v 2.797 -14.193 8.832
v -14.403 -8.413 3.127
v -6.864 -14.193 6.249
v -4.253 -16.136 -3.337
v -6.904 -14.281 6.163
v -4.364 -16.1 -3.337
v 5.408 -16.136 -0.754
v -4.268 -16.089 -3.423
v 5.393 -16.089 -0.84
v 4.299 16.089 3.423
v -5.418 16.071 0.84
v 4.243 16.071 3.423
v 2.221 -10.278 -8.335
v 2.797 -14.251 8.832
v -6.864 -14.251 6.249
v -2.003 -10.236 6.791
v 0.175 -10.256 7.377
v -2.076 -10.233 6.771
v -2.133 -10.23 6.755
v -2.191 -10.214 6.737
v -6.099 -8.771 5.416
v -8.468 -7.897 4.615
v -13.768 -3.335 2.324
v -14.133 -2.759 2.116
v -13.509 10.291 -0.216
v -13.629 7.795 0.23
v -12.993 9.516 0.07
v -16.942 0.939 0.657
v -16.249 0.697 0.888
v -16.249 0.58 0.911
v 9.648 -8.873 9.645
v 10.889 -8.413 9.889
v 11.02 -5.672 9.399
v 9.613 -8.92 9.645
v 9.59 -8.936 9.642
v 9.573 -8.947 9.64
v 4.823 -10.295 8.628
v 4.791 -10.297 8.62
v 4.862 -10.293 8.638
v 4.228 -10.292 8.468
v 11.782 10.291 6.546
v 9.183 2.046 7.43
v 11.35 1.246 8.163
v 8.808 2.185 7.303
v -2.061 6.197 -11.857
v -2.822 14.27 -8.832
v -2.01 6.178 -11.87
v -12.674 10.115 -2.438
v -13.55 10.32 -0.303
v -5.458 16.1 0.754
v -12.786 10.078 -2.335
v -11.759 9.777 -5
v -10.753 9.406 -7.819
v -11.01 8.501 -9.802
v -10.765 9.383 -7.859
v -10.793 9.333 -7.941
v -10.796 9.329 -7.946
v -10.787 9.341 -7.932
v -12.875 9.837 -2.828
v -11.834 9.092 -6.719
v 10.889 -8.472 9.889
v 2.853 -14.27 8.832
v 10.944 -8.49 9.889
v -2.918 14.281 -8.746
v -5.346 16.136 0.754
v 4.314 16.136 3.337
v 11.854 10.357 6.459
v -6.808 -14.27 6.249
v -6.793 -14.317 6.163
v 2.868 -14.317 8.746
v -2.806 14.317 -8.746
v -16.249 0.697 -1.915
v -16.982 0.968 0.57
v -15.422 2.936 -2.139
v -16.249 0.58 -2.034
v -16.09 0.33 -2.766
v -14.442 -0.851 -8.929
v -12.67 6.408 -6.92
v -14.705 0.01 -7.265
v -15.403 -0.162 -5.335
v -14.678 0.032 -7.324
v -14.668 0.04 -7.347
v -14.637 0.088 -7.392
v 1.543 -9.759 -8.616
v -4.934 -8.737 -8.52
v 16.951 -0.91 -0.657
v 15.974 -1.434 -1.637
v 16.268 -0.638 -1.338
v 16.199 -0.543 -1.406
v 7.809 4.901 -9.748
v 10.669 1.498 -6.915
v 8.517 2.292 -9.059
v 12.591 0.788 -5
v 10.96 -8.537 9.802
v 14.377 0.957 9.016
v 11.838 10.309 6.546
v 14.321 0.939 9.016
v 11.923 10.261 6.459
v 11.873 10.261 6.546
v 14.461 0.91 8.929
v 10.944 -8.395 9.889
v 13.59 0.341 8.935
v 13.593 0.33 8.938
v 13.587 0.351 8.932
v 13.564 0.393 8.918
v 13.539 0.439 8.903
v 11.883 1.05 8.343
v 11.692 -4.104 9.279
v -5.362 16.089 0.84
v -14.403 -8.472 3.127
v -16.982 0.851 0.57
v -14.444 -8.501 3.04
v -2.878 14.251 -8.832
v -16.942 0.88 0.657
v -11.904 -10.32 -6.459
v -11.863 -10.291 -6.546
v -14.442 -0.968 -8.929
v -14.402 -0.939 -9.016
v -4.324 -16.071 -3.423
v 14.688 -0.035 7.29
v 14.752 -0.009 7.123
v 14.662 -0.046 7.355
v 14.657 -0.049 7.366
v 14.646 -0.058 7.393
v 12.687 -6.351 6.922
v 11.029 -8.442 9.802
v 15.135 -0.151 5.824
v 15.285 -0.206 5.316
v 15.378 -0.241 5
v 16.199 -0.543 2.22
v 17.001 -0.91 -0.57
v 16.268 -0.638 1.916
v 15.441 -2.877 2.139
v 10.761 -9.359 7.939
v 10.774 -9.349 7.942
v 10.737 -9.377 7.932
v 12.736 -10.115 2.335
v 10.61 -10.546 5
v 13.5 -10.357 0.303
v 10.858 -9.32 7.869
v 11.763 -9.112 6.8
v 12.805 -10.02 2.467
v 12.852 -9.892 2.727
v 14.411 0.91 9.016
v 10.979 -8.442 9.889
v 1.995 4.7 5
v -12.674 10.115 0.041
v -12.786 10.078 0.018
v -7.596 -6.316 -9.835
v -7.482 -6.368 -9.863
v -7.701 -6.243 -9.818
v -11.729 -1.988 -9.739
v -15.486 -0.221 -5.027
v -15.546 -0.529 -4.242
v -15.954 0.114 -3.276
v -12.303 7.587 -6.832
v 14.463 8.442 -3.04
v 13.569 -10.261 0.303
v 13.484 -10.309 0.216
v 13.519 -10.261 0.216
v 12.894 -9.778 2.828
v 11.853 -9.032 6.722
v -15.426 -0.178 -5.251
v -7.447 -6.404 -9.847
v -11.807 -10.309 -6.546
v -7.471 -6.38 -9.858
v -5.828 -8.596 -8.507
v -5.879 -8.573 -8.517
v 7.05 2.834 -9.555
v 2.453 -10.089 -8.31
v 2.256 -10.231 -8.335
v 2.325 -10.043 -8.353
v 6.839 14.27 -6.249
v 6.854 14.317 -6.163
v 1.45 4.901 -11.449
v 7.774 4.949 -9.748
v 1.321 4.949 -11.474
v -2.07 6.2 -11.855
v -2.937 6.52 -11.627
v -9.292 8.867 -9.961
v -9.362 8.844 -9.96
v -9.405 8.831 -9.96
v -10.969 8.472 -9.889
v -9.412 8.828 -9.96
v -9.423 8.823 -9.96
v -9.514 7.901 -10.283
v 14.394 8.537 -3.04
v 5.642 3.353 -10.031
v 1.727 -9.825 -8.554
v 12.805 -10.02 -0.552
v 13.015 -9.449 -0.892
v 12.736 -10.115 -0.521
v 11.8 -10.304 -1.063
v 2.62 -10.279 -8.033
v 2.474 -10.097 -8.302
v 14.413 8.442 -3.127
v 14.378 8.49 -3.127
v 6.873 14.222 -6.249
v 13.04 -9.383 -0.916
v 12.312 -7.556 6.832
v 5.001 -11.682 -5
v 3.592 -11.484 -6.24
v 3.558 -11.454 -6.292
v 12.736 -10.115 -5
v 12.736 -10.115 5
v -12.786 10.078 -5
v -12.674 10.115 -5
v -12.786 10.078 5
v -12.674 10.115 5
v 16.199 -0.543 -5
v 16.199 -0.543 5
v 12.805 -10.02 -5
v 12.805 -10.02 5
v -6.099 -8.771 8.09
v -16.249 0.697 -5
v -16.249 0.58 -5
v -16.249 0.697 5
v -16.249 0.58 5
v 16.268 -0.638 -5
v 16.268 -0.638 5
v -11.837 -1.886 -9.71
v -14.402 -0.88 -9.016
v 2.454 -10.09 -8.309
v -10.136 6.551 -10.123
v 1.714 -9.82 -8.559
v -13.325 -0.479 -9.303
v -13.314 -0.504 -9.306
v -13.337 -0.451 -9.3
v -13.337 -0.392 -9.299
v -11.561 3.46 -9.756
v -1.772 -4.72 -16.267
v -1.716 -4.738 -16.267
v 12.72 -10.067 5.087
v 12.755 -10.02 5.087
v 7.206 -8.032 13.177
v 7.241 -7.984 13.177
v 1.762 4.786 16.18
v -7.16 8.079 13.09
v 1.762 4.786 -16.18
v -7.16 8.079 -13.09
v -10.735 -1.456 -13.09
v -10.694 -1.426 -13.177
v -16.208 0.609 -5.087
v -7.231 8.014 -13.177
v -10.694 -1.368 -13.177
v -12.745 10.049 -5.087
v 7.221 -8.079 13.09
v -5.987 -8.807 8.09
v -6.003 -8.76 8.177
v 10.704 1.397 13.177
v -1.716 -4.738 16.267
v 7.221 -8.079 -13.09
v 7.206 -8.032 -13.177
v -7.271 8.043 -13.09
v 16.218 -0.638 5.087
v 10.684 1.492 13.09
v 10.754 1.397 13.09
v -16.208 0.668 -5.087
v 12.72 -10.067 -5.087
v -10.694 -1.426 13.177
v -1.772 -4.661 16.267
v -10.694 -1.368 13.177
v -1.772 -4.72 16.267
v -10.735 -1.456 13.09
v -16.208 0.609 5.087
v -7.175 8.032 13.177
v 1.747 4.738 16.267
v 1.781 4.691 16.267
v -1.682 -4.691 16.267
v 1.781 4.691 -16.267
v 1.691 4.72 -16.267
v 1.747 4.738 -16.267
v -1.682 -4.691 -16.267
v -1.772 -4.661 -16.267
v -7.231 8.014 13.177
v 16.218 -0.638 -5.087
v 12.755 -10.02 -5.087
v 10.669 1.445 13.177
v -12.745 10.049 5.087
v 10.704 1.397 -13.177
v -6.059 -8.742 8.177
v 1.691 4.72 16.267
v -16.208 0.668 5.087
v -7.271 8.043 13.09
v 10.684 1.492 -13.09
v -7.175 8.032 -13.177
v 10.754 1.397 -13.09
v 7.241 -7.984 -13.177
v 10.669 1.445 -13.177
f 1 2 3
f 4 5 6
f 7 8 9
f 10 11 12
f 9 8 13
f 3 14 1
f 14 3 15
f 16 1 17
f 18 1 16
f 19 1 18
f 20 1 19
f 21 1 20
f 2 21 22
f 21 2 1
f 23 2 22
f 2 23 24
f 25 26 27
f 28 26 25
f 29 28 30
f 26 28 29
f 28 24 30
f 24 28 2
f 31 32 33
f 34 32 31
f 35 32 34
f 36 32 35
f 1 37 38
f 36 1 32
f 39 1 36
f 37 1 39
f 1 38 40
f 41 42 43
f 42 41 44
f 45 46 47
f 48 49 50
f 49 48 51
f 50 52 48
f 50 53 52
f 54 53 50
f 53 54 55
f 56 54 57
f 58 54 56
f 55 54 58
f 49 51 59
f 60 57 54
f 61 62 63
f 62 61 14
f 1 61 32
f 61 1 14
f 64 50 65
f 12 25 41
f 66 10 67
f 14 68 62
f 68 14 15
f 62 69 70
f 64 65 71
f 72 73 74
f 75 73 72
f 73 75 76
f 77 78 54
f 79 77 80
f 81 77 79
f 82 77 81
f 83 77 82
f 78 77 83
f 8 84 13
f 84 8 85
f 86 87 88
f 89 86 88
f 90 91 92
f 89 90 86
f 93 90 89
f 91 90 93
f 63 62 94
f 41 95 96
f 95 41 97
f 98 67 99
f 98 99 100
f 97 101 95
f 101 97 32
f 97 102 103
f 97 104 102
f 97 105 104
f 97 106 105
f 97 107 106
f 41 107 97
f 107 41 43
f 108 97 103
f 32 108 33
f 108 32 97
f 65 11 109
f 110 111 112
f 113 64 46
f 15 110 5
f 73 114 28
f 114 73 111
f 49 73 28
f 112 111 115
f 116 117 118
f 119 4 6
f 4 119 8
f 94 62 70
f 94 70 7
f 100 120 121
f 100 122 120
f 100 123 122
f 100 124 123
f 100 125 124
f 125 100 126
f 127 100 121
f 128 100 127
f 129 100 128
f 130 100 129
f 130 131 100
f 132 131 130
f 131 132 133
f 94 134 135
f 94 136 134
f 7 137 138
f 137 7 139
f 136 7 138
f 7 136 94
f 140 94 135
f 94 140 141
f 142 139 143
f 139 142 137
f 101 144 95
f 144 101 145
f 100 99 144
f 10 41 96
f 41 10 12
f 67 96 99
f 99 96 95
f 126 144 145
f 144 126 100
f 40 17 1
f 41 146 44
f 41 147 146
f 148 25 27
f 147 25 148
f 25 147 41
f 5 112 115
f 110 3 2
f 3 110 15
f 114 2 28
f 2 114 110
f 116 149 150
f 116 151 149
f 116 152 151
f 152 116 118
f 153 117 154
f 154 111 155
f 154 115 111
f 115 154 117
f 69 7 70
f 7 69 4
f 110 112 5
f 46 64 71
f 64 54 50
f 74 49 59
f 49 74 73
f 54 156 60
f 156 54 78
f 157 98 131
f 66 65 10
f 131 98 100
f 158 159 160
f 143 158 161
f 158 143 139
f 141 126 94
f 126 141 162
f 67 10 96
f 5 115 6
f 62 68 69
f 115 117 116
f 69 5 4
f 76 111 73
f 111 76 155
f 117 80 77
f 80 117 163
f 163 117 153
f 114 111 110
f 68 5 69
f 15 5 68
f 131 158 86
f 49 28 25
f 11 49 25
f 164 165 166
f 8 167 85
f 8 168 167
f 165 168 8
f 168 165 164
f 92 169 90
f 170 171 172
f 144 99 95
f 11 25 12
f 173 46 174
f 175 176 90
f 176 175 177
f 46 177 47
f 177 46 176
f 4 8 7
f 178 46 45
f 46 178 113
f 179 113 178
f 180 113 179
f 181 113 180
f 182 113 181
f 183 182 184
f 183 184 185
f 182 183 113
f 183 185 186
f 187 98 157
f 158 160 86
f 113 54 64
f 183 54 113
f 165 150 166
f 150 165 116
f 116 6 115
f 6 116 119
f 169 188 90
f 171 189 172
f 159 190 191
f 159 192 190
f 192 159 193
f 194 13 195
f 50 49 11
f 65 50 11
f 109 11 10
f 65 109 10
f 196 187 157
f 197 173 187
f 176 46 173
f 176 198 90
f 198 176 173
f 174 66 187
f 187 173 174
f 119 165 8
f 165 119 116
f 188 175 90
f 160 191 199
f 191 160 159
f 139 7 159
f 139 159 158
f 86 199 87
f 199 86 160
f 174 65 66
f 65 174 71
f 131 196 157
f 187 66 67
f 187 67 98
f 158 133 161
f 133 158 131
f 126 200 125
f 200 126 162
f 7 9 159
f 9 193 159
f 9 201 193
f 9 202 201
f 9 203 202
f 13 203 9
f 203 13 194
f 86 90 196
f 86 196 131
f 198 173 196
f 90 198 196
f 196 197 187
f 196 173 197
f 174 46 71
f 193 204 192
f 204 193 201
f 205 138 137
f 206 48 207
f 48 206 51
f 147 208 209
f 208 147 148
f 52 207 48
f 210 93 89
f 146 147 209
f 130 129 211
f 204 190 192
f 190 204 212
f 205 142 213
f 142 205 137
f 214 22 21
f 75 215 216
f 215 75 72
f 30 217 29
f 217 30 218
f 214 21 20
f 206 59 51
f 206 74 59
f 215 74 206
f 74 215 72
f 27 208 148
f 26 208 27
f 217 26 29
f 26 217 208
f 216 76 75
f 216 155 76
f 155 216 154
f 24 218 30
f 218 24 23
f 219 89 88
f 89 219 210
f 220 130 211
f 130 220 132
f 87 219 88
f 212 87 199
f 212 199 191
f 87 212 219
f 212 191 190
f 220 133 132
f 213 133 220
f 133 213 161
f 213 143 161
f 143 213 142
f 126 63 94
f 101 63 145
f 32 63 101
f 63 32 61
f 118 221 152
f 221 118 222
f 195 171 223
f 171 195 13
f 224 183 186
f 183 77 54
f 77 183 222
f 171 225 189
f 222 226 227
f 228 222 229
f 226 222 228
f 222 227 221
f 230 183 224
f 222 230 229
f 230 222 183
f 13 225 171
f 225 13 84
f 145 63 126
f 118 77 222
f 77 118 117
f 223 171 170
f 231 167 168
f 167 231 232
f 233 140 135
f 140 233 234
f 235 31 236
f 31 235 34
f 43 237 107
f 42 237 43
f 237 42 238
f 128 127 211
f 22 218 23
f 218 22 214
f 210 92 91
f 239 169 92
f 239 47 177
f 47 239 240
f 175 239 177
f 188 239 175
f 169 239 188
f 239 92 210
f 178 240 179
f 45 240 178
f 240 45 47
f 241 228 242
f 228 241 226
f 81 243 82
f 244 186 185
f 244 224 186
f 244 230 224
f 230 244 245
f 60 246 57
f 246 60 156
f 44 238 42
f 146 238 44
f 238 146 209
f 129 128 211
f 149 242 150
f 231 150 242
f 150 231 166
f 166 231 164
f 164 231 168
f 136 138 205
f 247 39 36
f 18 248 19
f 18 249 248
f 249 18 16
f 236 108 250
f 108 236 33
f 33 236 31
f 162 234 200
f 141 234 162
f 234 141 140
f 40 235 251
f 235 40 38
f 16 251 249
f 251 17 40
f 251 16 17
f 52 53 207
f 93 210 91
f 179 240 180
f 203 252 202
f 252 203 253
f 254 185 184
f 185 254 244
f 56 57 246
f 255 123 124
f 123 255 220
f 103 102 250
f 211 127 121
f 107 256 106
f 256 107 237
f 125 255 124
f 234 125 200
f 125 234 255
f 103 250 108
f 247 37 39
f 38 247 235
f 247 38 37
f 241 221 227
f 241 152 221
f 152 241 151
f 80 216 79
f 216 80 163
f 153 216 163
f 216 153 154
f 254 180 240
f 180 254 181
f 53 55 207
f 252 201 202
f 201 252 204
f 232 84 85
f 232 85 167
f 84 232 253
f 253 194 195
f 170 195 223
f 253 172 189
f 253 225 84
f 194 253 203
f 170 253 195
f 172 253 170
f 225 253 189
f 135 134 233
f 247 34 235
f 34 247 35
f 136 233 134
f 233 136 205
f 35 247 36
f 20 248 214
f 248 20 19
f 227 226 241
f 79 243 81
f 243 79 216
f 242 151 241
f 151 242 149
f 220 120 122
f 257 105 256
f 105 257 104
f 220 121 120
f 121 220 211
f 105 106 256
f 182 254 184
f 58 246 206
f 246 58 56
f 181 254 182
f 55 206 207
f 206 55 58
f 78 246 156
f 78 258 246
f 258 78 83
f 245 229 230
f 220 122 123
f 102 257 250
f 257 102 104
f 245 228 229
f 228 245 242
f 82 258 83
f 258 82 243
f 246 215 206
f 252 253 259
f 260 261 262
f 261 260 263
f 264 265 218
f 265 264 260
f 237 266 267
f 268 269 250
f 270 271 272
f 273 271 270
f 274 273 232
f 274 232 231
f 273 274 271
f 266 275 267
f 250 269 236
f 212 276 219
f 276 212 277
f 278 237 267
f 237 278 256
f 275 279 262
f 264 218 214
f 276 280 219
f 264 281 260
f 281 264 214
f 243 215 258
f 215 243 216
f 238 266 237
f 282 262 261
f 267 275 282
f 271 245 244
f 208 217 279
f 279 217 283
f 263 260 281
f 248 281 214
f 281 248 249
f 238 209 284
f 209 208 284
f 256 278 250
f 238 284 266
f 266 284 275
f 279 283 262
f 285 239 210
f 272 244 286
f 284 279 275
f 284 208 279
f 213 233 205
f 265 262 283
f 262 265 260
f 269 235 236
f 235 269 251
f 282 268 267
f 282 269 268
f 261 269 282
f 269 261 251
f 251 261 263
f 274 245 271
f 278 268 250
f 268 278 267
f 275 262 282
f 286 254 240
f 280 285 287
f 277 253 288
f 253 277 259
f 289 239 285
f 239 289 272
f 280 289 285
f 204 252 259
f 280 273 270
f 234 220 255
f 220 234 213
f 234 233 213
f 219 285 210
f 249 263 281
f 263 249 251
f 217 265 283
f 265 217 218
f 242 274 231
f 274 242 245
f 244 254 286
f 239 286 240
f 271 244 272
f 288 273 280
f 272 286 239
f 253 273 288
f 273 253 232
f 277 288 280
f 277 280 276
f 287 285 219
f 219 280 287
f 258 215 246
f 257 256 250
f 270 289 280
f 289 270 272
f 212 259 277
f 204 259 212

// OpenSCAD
// Auto-generated OpenSCAD file

    inner_points = 10*[[-1.6167766456007826, 0.06384352681284394, 0.5000000000001501], [-1.2704727596155507, 1.001965916776716, 0.5000000000009248], [1.2704671898464706, -1.0019702419428729, -0.5000000000009248], [1.6167710758317024, -0.06384785197900072, -0.5000000000001501], [-1.616776645600842, 0.06384352681369176, -0.4999999999998499], [-1.27047275961561, 1.0019659167775639, -0.4999999999990751], [-1.0653621399346023, -0.13970879018153537, 1.309016994374892], [-0.7190582539493701, 0.7984135997823368, 1.3090169943756669], [0.7190526841802901, -0.7984179249484936, -1.3090169943756669], [1.065356570165522, 0.1397044650153786, -1.309016994374892], [1.2704671898465298, -1.0019702419437206, 0.4999999999990751], [1.616771075831762, -0.06384785197984855, 0.4999999999998499], [-1.0653621399347575, -0.13970879017931587, -1.3090169943750025], [-0.7190582539495255, 0.7984135997845563, -1.309016994374228], [-0.17315472787705996, -0.4690633575663862, 1.6180339887495077], [0.17314915810817202, 0.469059032397486, 1.6180339887502821], [-0.17315472787725203, -0.46906335756364276, -1.6180339887502821], [0.17314915810797996, 0.4690590324002294, -1.6180339887495077], [0.7190526841804455, -0.7984179249507131, 1.309016994374228], [1.0653565701656773, 0.13970446501315908, 1.3090169943750025], [-1.1532320243432654, -0.6676798043957903, -4.976019596369952e-13], [0.2903898933803613, -1.2005866887736487, -0.5000000000010351], [-0.6018175186770848, -0.8712321213901697, 0.8090169943742446], [0.29038989338042065, -1.2005866887744965, 0.49999999999896494], [-0.6018175186771807, -0.8712321213887979, -0.8090169943756502]];

    outer_points = 10*[[1.6901206881155384, -0.09096313382919773, -0.05702417590571207], [1.4361259474809793, 0.09096313382919773, 0.8929176669804033], [-1.4361259474809793, -0.09096313382919773, -0.8929176669804033], [-1.6901206881155384, 0.09096313382919773, 0.05702417590571207], [1.3468981581679096, -1.0261485852376606, 0.03030546631443143], [1.0929034175333503, -0.8442223175792652, 0.9802473092005468], [1.4362832392717357, 0.8442223175792652, -0.30399526943371824], [1.1822884986371764, 1.0261485852376606, 0.6459465734523971], [-1.1822884986371764, -1.0261485852376606, -0.6459465734523971], [-1.4362832392717357, -0.8442223175792652, 0.30399526943371824], [-1.0929034175333503, 0.8442223175792652, -0.9802473092005468], [-1.3468981581679096, 1.0261485852376606, -0.03030546631443143], [0.5377149901641148, -1.6041249799925041, -0.07536329787601459], [0.2837202495295557, -1.4221987123341089, 0.8745785450101007], [0.6823430894772717, 1.4221987123341089, -0.6162732507806177], [0.4283483488427125, 1.6041249799925041, 0.3336685921054976], [-0.4283483488427125, -1.6041249799925041, -0.3336685921054976], [-0.6823430894772717, -1.4221987123341089, 0.6162732507806177], [-0.2837202495295557, 1.4221987123341089, -0.8745785450101007], [-0.5377149901641148, 1.6041249799925041, 0.07536329787601459], [1.0297392522827944, -0.4450863344613457, -0.719212304749417], [-0.5333840655154644, -0.4450863344613457, -1.1371590502867626], [0.775901803438992, 0.49009911694711733, -0.9661833982774231], [-0.1901615355678355, 0.49009911694711733, -1.224488692506906], [0.2205560842789998, -1.0230627292161891, -0.824881068939863]];

    // Convex hull for inner set (I)
    module inner_hull() {
        hull() {
            for (p = inner_points) {
                translate(p) sphere(r=0.1);
            }
        }
    }

    // Convex hull for outer set (O) minus inner hull (O \ I)
    module outer_minus_inner() {
        difference() {
            hull() {
                for (p = outer_points) {
                    translate(p) sphere(r=0.1);
                }
            }
            inner_hull(); // Subtract inner hull
        }
    }

    // Convex hull for outer set (O) minus all translated inner hulls
    module outer_minus_AllTranslationInner() {
        difference() {
            hull() {
                for (p = outer_points) {
                    translate(p) sphere(r=0.1);
                }
            }
            hull() {
                translate([0,0,50]) inner_hull();
                translate([0,0,-50]) inner_hull();
            }; // Subtract translated inner hulls
        }
    }

    // Difference between outer_minus_inner and outer_minus_AllTranslationInner
    module outer_minus_inner_diff() {
        difference() {
            // Outer minus inner
            difference() {
                hull() {
                    for (p = outer_points) {
                        translate(p) sphere(r=0.1);
                    }
                }
                inner_hull();
            }

            // Subtract Outer minus AllTranslationInner
            difference() {
                hull() {
                    for (p = outer_points) {
                        translate(p) sphere(r=0.1);
                    }
                }
                hull() {
                    translate([0,0,50]) inner_hull();
                    translate([0,0,-50]) inner_hull();
                };
            }
        }
    }

    // Rendering all with colors applied
    color([1, 0, 0, 0.5]) inner_hull(); // Transparent red
    color([0, 1, 0, 1]) outer_minus_AllTranslationInner(); // Opaque green
    color([1, 1, 0, 1]) outer_minus_inner_diff(); // Opaque yellow
    
